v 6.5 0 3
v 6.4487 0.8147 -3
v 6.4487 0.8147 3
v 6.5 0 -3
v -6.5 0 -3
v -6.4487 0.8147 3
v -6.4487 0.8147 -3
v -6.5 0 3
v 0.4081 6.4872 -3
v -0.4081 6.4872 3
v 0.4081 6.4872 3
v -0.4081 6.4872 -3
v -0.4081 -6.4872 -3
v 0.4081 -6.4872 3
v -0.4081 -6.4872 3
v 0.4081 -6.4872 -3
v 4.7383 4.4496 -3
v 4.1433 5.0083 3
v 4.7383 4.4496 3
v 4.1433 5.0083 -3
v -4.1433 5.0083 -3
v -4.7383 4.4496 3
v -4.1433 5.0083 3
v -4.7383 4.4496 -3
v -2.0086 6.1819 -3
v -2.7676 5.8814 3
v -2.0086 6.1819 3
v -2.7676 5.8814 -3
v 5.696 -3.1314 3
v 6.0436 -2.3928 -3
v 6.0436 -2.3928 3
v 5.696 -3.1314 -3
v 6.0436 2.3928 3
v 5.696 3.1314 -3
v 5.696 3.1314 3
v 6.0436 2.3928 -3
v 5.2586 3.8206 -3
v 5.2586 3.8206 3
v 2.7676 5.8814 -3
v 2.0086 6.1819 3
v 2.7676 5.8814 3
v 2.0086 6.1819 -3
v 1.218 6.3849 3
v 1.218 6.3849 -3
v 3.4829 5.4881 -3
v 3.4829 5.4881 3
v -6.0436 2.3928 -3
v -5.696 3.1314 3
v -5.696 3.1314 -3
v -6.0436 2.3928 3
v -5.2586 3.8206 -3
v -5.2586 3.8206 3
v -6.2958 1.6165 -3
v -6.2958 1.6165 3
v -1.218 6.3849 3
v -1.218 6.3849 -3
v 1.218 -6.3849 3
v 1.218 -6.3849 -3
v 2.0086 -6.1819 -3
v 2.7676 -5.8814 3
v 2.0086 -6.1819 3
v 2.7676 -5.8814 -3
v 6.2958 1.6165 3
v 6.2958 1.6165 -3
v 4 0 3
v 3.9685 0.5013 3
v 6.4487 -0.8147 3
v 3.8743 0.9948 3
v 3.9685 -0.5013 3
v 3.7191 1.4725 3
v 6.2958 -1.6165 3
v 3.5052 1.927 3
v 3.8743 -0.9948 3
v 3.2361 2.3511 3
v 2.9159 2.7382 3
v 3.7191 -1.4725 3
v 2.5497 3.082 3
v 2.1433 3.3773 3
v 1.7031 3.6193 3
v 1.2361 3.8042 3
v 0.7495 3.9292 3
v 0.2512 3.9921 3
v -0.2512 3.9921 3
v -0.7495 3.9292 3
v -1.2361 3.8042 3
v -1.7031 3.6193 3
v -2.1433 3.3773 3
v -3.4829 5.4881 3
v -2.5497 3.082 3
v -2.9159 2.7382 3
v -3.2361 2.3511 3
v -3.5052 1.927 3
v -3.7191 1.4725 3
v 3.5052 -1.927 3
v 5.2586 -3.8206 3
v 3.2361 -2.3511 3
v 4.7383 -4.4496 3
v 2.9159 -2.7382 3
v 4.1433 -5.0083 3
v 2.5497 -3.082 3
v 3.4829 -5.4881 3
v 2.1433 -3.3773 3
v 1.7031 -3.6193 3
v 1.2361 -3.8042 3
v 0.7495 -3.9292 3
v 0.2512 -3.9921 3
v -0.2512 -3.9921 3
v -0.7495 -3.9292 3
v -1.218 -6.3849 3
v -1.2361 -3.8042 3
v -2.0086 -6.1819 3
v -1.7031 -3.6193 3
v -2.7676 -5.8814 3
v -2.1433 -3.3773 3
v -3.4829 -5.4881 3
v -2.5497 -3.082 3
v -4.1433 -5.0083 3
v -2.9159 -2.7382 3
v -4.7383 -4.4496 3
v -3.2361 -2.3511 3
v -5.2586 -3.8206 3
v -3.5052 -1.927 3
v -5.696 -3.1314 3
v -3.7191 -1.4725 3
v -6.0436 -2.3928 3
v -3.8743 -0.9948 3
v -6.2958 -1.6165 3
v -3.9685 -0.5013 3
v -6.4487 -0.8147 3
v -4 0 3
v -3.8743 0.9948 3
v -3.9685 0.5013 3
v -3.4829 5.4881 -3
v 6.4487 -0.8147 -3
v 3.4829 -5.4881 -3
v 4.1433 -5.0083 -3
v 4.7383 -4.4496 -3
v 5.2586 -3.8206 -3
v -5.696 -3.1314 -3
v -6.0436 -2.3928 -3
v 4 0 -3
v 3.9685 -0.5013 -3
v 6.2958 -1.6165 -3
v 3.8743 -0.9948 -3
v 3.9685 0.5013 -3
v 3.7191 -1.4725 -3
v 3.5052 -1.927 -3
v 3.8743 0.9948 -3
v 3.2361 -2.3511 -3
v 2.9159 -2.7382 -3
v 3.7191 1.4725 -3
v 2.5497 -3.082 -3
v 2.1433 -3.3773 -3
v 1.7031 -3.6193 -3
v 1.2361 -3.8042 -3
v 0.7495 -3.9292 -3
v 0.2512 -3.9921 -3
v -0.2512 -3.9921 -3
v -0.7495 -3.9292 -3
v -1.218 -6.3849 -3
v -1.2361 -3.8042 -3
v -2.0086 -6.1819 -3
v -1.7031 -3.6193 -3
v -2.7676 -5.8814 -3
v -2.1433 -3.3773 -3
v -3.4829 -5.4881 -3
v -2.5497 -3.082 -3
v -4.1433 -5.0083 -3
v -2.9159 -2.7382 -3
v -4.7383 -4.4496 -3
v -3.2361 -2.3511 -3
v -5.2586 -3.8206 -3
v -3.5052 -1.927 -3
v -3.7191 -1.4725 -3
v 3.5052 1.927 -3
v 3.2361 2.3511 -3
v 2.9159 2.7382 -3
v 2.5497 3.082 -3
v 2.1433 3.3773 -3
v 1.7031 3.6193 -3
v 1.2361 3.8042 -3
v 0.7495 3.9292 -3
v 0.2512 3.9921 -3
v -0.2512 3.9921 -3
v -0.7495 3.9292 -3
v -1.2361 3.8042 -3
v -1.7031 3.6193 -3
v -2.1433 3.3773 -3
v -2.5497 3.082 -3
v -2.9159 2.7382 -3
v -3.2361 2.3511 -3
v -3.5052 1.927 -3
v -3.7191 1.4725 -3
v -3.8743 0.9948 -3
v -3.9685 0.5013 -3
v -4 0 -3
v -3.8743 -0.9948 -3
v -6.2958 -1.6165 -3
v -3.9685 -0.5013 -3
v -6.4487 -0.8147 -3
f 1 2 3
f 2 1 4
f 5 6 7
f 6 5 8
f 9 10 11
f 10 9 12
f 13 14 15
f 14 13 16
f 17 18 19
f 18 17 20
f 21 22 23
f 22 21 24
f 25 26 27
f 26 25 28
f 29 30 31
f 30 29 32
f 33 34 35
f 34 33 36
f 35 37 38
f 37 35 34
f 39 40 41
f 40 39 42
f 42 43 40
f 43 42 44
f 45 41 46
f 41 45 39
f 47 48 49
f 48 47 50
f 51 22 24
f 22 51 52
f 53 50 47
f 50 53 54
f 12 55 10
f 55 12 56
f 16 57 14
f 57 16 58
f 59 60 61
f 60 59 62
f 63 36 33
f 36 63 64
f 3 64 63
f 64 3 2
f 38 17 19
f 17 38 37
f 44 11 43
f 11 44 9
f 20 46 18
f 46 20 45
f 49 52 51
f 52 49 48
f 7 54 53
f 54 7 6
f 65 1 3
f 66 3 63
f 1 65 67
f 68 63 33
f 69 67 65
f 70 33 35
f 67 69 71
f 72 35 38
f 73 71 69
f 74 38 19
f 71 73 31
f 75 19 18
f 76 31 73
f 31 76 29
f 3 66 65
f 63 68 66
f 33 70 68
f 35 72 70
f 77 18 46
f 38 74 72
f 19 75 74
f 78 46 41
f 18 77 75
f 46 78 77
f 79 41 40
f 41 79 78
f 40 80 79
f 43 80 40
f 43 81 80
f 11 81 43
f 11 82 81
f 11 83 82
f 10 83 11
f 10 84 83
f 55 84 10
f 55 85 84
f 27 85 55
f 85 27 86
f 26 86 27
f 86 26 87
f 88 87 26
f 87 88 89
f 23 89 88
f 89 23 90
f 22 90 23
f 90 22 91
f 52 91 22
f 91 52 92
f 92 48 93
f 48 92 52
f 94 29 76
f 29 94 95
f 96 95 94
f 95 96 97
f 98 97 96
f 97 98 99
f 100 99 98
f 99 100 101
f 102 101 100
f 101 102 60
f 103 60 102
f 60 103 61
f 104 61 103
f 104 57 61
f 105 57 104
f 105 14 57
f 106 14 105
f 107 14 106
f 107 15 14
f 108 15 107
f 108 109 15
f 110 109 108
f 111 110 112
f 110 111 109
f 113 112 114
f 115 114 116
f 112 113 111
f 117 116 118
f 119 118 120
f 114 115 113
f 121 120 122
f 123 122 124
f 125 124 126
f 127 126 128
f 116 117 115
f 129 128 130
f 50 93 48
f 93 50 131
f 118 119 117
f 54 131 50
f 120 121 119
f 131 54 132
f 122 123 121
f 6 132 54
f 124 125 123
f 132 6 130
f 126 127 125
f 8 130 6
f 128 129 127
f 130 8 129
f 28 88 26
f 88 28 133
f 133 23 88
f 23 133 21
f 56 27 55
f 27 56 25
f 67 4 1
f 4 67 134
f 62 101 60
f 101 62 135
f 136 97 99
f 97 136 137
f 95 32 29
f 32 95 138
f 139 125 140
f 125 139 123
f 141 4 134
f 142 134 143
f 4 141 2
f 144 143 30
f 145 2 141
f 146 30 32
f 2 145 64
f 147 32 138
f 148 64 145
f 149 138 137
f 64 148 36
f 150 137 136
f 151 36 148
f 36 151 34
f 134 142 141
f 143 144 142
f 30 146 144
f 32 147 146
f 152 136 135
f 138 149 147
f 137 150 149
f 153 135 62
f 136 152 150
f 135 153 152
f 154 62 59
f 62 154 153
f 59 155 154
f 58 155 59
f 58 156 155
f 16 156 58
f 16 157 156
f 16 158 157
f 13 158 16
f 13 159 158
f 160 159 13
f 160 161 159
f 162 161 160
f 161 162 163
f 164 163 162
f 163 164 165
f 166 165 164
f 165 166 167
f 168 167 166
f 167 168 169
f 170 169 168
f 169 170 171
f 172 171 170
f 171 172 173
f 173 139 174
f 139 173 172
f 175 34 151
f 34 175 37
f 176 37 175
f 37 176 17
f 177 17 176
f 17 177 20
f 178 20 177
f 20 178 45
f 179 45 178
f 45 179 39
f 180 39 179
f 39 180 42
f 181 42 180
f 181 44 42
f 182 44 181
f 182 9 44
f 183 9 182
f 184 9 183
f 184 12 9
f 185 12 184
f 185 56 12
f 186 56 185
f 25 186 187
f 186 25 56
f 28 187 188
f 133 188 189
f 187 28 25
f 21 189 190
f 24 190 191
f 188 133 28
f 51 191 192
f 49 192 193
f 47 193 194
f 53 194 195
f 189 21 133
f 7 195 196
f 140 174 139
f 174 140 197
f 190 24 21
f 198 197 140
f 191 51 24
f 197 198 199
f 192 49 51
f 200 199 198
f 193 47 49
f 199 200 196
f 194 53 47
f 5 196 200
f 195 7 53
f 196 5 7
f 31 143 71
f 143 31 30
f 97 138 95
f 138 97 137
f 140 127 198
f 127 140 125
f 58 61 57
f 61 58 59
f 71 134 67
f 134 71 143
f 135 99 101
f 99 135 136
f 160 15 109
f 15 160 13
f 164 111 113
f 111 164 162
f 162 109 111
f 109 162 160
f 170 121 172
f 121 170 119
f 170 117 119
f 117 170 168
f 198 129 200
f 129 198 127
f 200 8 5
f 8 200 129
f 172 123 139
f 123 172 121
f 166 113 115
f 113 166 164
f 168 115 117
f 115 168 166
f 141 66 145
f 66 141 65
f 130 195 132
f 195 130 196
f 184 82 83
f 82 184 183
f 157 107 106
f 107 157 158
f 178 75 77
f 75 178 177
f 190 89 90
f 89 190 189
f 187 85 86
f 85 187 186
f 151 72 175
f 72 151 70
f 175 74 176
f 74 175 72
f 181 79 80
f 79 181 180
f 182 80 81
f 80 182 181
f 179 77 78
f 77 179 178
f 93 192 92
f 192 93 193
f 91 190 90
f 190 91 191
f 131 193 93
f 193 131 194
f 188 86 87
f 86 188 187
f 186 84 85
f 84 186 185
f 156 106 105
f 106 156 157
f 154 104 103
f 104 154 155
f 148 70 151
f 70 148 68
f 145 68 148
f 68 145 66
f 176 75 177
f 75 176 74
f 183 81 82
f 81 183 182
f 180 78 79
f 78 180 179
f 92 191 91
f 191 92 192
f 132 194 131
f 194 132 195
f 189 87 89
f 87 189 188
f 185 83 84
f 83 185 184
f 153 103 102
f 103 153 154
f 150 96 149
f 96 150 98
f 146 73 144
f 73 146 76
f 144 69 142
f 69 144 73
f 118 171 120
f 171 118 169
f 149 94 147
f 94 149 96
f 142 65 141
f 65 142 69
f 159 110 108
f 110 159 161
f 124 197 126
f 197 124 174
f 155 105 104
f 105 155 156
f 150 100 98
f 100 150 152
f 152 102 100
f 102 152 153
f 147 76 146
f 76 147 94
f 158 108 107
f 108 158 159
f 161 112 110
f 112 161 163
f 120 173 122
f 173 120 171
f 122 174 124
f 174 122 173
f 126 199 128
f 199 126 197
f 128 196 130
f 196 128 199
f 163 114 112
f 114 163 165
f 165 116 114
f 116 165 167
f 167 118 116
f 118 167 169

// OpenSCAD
$fn = 50;


difference() {
	union() {
		translate(v = [0, 0, -3.0000000000]) {
			cylinder(h = 6, r = 6.5000000000);
		}
	}
	union() {
		translate(v = [0, 0, -100.0000000000]) {
			cylinder(h = 200, r = 4.0000000000);
		}
	}
}
